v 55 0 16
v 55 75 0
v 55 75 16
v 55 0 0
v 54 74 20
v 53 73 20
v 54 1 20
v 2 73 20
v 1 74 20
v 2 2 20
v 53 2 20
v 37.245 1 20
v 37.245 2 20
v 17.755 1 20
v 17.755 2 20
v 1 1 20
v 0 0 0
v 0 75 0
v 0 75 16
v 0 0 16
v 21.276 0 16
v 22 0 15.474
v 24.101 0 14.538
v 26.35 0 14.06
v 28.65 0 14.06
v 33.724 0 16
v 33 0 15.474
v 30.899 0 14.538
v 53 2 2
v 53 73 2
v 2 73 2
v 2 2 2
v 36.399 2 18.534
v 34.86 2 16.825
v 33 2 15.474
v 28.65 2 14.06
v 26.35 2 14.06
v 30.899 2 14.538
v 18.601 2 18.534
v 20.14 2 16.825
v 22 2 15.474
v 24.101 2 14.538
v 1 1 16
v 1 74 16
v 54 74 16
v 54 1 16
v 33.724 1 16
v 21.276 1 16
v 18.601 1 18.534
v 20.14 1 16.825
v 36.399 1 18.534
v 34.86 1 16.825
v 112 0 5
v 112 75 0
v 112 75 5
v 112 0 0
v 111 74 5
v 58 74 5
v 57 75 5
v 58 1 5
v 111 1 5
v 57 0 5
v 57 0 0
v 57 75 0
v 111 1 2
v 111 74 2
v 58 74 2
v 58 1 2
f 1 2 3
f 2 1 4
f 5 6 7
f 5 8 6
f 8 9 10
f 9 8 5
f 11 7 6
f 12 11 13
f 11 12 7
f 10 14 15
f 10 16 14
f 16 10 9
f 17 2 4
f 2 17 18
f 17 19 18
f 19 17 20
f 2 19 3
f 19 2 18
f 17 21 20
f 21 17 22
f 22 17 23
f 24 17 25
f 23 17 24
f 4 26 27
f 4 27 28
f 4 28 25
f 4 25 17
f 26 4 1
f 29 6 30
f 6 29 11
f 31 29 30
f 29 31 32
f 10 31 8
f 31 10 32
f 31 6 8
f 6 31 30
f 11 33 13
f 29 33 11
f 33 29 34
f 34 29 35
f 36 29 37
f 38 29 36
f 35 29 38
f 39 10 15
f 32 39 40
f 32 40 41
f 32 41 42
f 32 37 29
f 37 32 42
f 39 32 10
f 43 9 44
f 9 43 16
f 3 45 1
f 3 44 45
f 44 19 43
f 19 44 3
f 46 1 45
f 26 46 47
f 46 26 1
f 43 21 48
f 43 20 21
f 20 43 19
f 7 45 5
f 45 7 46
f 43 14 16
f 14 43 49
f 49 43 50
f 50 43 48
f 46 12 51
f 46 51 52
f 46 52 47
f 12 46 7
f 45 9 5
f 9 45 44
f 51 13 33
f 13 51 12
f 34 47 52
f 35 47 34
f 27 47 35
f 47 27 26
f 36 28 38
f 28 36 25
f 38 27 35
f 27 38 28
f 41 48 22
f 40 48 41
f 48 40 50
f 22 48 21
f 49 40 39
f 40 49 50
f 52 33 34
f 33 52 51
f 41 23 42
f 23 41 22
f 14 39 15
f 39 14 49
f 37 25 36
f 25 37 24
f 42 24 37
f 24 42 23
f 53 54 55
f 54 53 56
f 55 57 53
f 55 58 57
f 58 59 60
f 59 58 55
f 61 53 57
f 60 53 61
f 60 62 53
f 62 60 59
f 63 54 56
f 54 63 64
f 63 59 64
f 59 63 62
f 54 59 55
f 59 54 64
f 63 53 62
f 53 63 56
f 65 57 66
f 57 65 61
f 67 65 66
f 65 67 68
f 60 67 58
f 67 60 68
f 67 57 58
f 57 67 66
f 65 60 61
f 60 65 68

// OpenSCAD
$card_lx = 51;
$card_ly = 72;
$height = 20;
$border = 2;

module emptyBox(x, y, h, border, lowBorder) {
    lower = (is_undef(lowBorder)) ? border : lowBorder;
    difference() {
        cube([x+(border*2), y+(border*2), h]);
        translate([border, border, lower]) 
            cube([x, y, h]);
    }

}


module player() {
    difference() {
        emptyBox($card_lx, $card_ly-1, $height, $border);
        translate([-1,-1,16]) 
            cube([$border,$card_ly*3, 5]);
        translate([$card_lx+$border+1,-1,16]) 
            cube([$border,$card_ly*3, 5]);
        translate([-1,-1,16])
            cube([$card_lx*3, $border, 5]);
        translate([-1,$card_ly+$border,16])
            cube([$card_lx*3, $border, 5]);
        translate([($card_lx+($border*2))/2, -1, $height+5]) {
            rotate([-90,0,0]){
                cylinder(h=10, r = 10+1);
            }
        }
    }
}

module lidPlayer() {
    translate ([$card_lx+3*$border,0,0])
        emptyBox($card_lx+$border, $card_ly+$border-1, 5,1, $border);
}

player();
lidPlayer();
